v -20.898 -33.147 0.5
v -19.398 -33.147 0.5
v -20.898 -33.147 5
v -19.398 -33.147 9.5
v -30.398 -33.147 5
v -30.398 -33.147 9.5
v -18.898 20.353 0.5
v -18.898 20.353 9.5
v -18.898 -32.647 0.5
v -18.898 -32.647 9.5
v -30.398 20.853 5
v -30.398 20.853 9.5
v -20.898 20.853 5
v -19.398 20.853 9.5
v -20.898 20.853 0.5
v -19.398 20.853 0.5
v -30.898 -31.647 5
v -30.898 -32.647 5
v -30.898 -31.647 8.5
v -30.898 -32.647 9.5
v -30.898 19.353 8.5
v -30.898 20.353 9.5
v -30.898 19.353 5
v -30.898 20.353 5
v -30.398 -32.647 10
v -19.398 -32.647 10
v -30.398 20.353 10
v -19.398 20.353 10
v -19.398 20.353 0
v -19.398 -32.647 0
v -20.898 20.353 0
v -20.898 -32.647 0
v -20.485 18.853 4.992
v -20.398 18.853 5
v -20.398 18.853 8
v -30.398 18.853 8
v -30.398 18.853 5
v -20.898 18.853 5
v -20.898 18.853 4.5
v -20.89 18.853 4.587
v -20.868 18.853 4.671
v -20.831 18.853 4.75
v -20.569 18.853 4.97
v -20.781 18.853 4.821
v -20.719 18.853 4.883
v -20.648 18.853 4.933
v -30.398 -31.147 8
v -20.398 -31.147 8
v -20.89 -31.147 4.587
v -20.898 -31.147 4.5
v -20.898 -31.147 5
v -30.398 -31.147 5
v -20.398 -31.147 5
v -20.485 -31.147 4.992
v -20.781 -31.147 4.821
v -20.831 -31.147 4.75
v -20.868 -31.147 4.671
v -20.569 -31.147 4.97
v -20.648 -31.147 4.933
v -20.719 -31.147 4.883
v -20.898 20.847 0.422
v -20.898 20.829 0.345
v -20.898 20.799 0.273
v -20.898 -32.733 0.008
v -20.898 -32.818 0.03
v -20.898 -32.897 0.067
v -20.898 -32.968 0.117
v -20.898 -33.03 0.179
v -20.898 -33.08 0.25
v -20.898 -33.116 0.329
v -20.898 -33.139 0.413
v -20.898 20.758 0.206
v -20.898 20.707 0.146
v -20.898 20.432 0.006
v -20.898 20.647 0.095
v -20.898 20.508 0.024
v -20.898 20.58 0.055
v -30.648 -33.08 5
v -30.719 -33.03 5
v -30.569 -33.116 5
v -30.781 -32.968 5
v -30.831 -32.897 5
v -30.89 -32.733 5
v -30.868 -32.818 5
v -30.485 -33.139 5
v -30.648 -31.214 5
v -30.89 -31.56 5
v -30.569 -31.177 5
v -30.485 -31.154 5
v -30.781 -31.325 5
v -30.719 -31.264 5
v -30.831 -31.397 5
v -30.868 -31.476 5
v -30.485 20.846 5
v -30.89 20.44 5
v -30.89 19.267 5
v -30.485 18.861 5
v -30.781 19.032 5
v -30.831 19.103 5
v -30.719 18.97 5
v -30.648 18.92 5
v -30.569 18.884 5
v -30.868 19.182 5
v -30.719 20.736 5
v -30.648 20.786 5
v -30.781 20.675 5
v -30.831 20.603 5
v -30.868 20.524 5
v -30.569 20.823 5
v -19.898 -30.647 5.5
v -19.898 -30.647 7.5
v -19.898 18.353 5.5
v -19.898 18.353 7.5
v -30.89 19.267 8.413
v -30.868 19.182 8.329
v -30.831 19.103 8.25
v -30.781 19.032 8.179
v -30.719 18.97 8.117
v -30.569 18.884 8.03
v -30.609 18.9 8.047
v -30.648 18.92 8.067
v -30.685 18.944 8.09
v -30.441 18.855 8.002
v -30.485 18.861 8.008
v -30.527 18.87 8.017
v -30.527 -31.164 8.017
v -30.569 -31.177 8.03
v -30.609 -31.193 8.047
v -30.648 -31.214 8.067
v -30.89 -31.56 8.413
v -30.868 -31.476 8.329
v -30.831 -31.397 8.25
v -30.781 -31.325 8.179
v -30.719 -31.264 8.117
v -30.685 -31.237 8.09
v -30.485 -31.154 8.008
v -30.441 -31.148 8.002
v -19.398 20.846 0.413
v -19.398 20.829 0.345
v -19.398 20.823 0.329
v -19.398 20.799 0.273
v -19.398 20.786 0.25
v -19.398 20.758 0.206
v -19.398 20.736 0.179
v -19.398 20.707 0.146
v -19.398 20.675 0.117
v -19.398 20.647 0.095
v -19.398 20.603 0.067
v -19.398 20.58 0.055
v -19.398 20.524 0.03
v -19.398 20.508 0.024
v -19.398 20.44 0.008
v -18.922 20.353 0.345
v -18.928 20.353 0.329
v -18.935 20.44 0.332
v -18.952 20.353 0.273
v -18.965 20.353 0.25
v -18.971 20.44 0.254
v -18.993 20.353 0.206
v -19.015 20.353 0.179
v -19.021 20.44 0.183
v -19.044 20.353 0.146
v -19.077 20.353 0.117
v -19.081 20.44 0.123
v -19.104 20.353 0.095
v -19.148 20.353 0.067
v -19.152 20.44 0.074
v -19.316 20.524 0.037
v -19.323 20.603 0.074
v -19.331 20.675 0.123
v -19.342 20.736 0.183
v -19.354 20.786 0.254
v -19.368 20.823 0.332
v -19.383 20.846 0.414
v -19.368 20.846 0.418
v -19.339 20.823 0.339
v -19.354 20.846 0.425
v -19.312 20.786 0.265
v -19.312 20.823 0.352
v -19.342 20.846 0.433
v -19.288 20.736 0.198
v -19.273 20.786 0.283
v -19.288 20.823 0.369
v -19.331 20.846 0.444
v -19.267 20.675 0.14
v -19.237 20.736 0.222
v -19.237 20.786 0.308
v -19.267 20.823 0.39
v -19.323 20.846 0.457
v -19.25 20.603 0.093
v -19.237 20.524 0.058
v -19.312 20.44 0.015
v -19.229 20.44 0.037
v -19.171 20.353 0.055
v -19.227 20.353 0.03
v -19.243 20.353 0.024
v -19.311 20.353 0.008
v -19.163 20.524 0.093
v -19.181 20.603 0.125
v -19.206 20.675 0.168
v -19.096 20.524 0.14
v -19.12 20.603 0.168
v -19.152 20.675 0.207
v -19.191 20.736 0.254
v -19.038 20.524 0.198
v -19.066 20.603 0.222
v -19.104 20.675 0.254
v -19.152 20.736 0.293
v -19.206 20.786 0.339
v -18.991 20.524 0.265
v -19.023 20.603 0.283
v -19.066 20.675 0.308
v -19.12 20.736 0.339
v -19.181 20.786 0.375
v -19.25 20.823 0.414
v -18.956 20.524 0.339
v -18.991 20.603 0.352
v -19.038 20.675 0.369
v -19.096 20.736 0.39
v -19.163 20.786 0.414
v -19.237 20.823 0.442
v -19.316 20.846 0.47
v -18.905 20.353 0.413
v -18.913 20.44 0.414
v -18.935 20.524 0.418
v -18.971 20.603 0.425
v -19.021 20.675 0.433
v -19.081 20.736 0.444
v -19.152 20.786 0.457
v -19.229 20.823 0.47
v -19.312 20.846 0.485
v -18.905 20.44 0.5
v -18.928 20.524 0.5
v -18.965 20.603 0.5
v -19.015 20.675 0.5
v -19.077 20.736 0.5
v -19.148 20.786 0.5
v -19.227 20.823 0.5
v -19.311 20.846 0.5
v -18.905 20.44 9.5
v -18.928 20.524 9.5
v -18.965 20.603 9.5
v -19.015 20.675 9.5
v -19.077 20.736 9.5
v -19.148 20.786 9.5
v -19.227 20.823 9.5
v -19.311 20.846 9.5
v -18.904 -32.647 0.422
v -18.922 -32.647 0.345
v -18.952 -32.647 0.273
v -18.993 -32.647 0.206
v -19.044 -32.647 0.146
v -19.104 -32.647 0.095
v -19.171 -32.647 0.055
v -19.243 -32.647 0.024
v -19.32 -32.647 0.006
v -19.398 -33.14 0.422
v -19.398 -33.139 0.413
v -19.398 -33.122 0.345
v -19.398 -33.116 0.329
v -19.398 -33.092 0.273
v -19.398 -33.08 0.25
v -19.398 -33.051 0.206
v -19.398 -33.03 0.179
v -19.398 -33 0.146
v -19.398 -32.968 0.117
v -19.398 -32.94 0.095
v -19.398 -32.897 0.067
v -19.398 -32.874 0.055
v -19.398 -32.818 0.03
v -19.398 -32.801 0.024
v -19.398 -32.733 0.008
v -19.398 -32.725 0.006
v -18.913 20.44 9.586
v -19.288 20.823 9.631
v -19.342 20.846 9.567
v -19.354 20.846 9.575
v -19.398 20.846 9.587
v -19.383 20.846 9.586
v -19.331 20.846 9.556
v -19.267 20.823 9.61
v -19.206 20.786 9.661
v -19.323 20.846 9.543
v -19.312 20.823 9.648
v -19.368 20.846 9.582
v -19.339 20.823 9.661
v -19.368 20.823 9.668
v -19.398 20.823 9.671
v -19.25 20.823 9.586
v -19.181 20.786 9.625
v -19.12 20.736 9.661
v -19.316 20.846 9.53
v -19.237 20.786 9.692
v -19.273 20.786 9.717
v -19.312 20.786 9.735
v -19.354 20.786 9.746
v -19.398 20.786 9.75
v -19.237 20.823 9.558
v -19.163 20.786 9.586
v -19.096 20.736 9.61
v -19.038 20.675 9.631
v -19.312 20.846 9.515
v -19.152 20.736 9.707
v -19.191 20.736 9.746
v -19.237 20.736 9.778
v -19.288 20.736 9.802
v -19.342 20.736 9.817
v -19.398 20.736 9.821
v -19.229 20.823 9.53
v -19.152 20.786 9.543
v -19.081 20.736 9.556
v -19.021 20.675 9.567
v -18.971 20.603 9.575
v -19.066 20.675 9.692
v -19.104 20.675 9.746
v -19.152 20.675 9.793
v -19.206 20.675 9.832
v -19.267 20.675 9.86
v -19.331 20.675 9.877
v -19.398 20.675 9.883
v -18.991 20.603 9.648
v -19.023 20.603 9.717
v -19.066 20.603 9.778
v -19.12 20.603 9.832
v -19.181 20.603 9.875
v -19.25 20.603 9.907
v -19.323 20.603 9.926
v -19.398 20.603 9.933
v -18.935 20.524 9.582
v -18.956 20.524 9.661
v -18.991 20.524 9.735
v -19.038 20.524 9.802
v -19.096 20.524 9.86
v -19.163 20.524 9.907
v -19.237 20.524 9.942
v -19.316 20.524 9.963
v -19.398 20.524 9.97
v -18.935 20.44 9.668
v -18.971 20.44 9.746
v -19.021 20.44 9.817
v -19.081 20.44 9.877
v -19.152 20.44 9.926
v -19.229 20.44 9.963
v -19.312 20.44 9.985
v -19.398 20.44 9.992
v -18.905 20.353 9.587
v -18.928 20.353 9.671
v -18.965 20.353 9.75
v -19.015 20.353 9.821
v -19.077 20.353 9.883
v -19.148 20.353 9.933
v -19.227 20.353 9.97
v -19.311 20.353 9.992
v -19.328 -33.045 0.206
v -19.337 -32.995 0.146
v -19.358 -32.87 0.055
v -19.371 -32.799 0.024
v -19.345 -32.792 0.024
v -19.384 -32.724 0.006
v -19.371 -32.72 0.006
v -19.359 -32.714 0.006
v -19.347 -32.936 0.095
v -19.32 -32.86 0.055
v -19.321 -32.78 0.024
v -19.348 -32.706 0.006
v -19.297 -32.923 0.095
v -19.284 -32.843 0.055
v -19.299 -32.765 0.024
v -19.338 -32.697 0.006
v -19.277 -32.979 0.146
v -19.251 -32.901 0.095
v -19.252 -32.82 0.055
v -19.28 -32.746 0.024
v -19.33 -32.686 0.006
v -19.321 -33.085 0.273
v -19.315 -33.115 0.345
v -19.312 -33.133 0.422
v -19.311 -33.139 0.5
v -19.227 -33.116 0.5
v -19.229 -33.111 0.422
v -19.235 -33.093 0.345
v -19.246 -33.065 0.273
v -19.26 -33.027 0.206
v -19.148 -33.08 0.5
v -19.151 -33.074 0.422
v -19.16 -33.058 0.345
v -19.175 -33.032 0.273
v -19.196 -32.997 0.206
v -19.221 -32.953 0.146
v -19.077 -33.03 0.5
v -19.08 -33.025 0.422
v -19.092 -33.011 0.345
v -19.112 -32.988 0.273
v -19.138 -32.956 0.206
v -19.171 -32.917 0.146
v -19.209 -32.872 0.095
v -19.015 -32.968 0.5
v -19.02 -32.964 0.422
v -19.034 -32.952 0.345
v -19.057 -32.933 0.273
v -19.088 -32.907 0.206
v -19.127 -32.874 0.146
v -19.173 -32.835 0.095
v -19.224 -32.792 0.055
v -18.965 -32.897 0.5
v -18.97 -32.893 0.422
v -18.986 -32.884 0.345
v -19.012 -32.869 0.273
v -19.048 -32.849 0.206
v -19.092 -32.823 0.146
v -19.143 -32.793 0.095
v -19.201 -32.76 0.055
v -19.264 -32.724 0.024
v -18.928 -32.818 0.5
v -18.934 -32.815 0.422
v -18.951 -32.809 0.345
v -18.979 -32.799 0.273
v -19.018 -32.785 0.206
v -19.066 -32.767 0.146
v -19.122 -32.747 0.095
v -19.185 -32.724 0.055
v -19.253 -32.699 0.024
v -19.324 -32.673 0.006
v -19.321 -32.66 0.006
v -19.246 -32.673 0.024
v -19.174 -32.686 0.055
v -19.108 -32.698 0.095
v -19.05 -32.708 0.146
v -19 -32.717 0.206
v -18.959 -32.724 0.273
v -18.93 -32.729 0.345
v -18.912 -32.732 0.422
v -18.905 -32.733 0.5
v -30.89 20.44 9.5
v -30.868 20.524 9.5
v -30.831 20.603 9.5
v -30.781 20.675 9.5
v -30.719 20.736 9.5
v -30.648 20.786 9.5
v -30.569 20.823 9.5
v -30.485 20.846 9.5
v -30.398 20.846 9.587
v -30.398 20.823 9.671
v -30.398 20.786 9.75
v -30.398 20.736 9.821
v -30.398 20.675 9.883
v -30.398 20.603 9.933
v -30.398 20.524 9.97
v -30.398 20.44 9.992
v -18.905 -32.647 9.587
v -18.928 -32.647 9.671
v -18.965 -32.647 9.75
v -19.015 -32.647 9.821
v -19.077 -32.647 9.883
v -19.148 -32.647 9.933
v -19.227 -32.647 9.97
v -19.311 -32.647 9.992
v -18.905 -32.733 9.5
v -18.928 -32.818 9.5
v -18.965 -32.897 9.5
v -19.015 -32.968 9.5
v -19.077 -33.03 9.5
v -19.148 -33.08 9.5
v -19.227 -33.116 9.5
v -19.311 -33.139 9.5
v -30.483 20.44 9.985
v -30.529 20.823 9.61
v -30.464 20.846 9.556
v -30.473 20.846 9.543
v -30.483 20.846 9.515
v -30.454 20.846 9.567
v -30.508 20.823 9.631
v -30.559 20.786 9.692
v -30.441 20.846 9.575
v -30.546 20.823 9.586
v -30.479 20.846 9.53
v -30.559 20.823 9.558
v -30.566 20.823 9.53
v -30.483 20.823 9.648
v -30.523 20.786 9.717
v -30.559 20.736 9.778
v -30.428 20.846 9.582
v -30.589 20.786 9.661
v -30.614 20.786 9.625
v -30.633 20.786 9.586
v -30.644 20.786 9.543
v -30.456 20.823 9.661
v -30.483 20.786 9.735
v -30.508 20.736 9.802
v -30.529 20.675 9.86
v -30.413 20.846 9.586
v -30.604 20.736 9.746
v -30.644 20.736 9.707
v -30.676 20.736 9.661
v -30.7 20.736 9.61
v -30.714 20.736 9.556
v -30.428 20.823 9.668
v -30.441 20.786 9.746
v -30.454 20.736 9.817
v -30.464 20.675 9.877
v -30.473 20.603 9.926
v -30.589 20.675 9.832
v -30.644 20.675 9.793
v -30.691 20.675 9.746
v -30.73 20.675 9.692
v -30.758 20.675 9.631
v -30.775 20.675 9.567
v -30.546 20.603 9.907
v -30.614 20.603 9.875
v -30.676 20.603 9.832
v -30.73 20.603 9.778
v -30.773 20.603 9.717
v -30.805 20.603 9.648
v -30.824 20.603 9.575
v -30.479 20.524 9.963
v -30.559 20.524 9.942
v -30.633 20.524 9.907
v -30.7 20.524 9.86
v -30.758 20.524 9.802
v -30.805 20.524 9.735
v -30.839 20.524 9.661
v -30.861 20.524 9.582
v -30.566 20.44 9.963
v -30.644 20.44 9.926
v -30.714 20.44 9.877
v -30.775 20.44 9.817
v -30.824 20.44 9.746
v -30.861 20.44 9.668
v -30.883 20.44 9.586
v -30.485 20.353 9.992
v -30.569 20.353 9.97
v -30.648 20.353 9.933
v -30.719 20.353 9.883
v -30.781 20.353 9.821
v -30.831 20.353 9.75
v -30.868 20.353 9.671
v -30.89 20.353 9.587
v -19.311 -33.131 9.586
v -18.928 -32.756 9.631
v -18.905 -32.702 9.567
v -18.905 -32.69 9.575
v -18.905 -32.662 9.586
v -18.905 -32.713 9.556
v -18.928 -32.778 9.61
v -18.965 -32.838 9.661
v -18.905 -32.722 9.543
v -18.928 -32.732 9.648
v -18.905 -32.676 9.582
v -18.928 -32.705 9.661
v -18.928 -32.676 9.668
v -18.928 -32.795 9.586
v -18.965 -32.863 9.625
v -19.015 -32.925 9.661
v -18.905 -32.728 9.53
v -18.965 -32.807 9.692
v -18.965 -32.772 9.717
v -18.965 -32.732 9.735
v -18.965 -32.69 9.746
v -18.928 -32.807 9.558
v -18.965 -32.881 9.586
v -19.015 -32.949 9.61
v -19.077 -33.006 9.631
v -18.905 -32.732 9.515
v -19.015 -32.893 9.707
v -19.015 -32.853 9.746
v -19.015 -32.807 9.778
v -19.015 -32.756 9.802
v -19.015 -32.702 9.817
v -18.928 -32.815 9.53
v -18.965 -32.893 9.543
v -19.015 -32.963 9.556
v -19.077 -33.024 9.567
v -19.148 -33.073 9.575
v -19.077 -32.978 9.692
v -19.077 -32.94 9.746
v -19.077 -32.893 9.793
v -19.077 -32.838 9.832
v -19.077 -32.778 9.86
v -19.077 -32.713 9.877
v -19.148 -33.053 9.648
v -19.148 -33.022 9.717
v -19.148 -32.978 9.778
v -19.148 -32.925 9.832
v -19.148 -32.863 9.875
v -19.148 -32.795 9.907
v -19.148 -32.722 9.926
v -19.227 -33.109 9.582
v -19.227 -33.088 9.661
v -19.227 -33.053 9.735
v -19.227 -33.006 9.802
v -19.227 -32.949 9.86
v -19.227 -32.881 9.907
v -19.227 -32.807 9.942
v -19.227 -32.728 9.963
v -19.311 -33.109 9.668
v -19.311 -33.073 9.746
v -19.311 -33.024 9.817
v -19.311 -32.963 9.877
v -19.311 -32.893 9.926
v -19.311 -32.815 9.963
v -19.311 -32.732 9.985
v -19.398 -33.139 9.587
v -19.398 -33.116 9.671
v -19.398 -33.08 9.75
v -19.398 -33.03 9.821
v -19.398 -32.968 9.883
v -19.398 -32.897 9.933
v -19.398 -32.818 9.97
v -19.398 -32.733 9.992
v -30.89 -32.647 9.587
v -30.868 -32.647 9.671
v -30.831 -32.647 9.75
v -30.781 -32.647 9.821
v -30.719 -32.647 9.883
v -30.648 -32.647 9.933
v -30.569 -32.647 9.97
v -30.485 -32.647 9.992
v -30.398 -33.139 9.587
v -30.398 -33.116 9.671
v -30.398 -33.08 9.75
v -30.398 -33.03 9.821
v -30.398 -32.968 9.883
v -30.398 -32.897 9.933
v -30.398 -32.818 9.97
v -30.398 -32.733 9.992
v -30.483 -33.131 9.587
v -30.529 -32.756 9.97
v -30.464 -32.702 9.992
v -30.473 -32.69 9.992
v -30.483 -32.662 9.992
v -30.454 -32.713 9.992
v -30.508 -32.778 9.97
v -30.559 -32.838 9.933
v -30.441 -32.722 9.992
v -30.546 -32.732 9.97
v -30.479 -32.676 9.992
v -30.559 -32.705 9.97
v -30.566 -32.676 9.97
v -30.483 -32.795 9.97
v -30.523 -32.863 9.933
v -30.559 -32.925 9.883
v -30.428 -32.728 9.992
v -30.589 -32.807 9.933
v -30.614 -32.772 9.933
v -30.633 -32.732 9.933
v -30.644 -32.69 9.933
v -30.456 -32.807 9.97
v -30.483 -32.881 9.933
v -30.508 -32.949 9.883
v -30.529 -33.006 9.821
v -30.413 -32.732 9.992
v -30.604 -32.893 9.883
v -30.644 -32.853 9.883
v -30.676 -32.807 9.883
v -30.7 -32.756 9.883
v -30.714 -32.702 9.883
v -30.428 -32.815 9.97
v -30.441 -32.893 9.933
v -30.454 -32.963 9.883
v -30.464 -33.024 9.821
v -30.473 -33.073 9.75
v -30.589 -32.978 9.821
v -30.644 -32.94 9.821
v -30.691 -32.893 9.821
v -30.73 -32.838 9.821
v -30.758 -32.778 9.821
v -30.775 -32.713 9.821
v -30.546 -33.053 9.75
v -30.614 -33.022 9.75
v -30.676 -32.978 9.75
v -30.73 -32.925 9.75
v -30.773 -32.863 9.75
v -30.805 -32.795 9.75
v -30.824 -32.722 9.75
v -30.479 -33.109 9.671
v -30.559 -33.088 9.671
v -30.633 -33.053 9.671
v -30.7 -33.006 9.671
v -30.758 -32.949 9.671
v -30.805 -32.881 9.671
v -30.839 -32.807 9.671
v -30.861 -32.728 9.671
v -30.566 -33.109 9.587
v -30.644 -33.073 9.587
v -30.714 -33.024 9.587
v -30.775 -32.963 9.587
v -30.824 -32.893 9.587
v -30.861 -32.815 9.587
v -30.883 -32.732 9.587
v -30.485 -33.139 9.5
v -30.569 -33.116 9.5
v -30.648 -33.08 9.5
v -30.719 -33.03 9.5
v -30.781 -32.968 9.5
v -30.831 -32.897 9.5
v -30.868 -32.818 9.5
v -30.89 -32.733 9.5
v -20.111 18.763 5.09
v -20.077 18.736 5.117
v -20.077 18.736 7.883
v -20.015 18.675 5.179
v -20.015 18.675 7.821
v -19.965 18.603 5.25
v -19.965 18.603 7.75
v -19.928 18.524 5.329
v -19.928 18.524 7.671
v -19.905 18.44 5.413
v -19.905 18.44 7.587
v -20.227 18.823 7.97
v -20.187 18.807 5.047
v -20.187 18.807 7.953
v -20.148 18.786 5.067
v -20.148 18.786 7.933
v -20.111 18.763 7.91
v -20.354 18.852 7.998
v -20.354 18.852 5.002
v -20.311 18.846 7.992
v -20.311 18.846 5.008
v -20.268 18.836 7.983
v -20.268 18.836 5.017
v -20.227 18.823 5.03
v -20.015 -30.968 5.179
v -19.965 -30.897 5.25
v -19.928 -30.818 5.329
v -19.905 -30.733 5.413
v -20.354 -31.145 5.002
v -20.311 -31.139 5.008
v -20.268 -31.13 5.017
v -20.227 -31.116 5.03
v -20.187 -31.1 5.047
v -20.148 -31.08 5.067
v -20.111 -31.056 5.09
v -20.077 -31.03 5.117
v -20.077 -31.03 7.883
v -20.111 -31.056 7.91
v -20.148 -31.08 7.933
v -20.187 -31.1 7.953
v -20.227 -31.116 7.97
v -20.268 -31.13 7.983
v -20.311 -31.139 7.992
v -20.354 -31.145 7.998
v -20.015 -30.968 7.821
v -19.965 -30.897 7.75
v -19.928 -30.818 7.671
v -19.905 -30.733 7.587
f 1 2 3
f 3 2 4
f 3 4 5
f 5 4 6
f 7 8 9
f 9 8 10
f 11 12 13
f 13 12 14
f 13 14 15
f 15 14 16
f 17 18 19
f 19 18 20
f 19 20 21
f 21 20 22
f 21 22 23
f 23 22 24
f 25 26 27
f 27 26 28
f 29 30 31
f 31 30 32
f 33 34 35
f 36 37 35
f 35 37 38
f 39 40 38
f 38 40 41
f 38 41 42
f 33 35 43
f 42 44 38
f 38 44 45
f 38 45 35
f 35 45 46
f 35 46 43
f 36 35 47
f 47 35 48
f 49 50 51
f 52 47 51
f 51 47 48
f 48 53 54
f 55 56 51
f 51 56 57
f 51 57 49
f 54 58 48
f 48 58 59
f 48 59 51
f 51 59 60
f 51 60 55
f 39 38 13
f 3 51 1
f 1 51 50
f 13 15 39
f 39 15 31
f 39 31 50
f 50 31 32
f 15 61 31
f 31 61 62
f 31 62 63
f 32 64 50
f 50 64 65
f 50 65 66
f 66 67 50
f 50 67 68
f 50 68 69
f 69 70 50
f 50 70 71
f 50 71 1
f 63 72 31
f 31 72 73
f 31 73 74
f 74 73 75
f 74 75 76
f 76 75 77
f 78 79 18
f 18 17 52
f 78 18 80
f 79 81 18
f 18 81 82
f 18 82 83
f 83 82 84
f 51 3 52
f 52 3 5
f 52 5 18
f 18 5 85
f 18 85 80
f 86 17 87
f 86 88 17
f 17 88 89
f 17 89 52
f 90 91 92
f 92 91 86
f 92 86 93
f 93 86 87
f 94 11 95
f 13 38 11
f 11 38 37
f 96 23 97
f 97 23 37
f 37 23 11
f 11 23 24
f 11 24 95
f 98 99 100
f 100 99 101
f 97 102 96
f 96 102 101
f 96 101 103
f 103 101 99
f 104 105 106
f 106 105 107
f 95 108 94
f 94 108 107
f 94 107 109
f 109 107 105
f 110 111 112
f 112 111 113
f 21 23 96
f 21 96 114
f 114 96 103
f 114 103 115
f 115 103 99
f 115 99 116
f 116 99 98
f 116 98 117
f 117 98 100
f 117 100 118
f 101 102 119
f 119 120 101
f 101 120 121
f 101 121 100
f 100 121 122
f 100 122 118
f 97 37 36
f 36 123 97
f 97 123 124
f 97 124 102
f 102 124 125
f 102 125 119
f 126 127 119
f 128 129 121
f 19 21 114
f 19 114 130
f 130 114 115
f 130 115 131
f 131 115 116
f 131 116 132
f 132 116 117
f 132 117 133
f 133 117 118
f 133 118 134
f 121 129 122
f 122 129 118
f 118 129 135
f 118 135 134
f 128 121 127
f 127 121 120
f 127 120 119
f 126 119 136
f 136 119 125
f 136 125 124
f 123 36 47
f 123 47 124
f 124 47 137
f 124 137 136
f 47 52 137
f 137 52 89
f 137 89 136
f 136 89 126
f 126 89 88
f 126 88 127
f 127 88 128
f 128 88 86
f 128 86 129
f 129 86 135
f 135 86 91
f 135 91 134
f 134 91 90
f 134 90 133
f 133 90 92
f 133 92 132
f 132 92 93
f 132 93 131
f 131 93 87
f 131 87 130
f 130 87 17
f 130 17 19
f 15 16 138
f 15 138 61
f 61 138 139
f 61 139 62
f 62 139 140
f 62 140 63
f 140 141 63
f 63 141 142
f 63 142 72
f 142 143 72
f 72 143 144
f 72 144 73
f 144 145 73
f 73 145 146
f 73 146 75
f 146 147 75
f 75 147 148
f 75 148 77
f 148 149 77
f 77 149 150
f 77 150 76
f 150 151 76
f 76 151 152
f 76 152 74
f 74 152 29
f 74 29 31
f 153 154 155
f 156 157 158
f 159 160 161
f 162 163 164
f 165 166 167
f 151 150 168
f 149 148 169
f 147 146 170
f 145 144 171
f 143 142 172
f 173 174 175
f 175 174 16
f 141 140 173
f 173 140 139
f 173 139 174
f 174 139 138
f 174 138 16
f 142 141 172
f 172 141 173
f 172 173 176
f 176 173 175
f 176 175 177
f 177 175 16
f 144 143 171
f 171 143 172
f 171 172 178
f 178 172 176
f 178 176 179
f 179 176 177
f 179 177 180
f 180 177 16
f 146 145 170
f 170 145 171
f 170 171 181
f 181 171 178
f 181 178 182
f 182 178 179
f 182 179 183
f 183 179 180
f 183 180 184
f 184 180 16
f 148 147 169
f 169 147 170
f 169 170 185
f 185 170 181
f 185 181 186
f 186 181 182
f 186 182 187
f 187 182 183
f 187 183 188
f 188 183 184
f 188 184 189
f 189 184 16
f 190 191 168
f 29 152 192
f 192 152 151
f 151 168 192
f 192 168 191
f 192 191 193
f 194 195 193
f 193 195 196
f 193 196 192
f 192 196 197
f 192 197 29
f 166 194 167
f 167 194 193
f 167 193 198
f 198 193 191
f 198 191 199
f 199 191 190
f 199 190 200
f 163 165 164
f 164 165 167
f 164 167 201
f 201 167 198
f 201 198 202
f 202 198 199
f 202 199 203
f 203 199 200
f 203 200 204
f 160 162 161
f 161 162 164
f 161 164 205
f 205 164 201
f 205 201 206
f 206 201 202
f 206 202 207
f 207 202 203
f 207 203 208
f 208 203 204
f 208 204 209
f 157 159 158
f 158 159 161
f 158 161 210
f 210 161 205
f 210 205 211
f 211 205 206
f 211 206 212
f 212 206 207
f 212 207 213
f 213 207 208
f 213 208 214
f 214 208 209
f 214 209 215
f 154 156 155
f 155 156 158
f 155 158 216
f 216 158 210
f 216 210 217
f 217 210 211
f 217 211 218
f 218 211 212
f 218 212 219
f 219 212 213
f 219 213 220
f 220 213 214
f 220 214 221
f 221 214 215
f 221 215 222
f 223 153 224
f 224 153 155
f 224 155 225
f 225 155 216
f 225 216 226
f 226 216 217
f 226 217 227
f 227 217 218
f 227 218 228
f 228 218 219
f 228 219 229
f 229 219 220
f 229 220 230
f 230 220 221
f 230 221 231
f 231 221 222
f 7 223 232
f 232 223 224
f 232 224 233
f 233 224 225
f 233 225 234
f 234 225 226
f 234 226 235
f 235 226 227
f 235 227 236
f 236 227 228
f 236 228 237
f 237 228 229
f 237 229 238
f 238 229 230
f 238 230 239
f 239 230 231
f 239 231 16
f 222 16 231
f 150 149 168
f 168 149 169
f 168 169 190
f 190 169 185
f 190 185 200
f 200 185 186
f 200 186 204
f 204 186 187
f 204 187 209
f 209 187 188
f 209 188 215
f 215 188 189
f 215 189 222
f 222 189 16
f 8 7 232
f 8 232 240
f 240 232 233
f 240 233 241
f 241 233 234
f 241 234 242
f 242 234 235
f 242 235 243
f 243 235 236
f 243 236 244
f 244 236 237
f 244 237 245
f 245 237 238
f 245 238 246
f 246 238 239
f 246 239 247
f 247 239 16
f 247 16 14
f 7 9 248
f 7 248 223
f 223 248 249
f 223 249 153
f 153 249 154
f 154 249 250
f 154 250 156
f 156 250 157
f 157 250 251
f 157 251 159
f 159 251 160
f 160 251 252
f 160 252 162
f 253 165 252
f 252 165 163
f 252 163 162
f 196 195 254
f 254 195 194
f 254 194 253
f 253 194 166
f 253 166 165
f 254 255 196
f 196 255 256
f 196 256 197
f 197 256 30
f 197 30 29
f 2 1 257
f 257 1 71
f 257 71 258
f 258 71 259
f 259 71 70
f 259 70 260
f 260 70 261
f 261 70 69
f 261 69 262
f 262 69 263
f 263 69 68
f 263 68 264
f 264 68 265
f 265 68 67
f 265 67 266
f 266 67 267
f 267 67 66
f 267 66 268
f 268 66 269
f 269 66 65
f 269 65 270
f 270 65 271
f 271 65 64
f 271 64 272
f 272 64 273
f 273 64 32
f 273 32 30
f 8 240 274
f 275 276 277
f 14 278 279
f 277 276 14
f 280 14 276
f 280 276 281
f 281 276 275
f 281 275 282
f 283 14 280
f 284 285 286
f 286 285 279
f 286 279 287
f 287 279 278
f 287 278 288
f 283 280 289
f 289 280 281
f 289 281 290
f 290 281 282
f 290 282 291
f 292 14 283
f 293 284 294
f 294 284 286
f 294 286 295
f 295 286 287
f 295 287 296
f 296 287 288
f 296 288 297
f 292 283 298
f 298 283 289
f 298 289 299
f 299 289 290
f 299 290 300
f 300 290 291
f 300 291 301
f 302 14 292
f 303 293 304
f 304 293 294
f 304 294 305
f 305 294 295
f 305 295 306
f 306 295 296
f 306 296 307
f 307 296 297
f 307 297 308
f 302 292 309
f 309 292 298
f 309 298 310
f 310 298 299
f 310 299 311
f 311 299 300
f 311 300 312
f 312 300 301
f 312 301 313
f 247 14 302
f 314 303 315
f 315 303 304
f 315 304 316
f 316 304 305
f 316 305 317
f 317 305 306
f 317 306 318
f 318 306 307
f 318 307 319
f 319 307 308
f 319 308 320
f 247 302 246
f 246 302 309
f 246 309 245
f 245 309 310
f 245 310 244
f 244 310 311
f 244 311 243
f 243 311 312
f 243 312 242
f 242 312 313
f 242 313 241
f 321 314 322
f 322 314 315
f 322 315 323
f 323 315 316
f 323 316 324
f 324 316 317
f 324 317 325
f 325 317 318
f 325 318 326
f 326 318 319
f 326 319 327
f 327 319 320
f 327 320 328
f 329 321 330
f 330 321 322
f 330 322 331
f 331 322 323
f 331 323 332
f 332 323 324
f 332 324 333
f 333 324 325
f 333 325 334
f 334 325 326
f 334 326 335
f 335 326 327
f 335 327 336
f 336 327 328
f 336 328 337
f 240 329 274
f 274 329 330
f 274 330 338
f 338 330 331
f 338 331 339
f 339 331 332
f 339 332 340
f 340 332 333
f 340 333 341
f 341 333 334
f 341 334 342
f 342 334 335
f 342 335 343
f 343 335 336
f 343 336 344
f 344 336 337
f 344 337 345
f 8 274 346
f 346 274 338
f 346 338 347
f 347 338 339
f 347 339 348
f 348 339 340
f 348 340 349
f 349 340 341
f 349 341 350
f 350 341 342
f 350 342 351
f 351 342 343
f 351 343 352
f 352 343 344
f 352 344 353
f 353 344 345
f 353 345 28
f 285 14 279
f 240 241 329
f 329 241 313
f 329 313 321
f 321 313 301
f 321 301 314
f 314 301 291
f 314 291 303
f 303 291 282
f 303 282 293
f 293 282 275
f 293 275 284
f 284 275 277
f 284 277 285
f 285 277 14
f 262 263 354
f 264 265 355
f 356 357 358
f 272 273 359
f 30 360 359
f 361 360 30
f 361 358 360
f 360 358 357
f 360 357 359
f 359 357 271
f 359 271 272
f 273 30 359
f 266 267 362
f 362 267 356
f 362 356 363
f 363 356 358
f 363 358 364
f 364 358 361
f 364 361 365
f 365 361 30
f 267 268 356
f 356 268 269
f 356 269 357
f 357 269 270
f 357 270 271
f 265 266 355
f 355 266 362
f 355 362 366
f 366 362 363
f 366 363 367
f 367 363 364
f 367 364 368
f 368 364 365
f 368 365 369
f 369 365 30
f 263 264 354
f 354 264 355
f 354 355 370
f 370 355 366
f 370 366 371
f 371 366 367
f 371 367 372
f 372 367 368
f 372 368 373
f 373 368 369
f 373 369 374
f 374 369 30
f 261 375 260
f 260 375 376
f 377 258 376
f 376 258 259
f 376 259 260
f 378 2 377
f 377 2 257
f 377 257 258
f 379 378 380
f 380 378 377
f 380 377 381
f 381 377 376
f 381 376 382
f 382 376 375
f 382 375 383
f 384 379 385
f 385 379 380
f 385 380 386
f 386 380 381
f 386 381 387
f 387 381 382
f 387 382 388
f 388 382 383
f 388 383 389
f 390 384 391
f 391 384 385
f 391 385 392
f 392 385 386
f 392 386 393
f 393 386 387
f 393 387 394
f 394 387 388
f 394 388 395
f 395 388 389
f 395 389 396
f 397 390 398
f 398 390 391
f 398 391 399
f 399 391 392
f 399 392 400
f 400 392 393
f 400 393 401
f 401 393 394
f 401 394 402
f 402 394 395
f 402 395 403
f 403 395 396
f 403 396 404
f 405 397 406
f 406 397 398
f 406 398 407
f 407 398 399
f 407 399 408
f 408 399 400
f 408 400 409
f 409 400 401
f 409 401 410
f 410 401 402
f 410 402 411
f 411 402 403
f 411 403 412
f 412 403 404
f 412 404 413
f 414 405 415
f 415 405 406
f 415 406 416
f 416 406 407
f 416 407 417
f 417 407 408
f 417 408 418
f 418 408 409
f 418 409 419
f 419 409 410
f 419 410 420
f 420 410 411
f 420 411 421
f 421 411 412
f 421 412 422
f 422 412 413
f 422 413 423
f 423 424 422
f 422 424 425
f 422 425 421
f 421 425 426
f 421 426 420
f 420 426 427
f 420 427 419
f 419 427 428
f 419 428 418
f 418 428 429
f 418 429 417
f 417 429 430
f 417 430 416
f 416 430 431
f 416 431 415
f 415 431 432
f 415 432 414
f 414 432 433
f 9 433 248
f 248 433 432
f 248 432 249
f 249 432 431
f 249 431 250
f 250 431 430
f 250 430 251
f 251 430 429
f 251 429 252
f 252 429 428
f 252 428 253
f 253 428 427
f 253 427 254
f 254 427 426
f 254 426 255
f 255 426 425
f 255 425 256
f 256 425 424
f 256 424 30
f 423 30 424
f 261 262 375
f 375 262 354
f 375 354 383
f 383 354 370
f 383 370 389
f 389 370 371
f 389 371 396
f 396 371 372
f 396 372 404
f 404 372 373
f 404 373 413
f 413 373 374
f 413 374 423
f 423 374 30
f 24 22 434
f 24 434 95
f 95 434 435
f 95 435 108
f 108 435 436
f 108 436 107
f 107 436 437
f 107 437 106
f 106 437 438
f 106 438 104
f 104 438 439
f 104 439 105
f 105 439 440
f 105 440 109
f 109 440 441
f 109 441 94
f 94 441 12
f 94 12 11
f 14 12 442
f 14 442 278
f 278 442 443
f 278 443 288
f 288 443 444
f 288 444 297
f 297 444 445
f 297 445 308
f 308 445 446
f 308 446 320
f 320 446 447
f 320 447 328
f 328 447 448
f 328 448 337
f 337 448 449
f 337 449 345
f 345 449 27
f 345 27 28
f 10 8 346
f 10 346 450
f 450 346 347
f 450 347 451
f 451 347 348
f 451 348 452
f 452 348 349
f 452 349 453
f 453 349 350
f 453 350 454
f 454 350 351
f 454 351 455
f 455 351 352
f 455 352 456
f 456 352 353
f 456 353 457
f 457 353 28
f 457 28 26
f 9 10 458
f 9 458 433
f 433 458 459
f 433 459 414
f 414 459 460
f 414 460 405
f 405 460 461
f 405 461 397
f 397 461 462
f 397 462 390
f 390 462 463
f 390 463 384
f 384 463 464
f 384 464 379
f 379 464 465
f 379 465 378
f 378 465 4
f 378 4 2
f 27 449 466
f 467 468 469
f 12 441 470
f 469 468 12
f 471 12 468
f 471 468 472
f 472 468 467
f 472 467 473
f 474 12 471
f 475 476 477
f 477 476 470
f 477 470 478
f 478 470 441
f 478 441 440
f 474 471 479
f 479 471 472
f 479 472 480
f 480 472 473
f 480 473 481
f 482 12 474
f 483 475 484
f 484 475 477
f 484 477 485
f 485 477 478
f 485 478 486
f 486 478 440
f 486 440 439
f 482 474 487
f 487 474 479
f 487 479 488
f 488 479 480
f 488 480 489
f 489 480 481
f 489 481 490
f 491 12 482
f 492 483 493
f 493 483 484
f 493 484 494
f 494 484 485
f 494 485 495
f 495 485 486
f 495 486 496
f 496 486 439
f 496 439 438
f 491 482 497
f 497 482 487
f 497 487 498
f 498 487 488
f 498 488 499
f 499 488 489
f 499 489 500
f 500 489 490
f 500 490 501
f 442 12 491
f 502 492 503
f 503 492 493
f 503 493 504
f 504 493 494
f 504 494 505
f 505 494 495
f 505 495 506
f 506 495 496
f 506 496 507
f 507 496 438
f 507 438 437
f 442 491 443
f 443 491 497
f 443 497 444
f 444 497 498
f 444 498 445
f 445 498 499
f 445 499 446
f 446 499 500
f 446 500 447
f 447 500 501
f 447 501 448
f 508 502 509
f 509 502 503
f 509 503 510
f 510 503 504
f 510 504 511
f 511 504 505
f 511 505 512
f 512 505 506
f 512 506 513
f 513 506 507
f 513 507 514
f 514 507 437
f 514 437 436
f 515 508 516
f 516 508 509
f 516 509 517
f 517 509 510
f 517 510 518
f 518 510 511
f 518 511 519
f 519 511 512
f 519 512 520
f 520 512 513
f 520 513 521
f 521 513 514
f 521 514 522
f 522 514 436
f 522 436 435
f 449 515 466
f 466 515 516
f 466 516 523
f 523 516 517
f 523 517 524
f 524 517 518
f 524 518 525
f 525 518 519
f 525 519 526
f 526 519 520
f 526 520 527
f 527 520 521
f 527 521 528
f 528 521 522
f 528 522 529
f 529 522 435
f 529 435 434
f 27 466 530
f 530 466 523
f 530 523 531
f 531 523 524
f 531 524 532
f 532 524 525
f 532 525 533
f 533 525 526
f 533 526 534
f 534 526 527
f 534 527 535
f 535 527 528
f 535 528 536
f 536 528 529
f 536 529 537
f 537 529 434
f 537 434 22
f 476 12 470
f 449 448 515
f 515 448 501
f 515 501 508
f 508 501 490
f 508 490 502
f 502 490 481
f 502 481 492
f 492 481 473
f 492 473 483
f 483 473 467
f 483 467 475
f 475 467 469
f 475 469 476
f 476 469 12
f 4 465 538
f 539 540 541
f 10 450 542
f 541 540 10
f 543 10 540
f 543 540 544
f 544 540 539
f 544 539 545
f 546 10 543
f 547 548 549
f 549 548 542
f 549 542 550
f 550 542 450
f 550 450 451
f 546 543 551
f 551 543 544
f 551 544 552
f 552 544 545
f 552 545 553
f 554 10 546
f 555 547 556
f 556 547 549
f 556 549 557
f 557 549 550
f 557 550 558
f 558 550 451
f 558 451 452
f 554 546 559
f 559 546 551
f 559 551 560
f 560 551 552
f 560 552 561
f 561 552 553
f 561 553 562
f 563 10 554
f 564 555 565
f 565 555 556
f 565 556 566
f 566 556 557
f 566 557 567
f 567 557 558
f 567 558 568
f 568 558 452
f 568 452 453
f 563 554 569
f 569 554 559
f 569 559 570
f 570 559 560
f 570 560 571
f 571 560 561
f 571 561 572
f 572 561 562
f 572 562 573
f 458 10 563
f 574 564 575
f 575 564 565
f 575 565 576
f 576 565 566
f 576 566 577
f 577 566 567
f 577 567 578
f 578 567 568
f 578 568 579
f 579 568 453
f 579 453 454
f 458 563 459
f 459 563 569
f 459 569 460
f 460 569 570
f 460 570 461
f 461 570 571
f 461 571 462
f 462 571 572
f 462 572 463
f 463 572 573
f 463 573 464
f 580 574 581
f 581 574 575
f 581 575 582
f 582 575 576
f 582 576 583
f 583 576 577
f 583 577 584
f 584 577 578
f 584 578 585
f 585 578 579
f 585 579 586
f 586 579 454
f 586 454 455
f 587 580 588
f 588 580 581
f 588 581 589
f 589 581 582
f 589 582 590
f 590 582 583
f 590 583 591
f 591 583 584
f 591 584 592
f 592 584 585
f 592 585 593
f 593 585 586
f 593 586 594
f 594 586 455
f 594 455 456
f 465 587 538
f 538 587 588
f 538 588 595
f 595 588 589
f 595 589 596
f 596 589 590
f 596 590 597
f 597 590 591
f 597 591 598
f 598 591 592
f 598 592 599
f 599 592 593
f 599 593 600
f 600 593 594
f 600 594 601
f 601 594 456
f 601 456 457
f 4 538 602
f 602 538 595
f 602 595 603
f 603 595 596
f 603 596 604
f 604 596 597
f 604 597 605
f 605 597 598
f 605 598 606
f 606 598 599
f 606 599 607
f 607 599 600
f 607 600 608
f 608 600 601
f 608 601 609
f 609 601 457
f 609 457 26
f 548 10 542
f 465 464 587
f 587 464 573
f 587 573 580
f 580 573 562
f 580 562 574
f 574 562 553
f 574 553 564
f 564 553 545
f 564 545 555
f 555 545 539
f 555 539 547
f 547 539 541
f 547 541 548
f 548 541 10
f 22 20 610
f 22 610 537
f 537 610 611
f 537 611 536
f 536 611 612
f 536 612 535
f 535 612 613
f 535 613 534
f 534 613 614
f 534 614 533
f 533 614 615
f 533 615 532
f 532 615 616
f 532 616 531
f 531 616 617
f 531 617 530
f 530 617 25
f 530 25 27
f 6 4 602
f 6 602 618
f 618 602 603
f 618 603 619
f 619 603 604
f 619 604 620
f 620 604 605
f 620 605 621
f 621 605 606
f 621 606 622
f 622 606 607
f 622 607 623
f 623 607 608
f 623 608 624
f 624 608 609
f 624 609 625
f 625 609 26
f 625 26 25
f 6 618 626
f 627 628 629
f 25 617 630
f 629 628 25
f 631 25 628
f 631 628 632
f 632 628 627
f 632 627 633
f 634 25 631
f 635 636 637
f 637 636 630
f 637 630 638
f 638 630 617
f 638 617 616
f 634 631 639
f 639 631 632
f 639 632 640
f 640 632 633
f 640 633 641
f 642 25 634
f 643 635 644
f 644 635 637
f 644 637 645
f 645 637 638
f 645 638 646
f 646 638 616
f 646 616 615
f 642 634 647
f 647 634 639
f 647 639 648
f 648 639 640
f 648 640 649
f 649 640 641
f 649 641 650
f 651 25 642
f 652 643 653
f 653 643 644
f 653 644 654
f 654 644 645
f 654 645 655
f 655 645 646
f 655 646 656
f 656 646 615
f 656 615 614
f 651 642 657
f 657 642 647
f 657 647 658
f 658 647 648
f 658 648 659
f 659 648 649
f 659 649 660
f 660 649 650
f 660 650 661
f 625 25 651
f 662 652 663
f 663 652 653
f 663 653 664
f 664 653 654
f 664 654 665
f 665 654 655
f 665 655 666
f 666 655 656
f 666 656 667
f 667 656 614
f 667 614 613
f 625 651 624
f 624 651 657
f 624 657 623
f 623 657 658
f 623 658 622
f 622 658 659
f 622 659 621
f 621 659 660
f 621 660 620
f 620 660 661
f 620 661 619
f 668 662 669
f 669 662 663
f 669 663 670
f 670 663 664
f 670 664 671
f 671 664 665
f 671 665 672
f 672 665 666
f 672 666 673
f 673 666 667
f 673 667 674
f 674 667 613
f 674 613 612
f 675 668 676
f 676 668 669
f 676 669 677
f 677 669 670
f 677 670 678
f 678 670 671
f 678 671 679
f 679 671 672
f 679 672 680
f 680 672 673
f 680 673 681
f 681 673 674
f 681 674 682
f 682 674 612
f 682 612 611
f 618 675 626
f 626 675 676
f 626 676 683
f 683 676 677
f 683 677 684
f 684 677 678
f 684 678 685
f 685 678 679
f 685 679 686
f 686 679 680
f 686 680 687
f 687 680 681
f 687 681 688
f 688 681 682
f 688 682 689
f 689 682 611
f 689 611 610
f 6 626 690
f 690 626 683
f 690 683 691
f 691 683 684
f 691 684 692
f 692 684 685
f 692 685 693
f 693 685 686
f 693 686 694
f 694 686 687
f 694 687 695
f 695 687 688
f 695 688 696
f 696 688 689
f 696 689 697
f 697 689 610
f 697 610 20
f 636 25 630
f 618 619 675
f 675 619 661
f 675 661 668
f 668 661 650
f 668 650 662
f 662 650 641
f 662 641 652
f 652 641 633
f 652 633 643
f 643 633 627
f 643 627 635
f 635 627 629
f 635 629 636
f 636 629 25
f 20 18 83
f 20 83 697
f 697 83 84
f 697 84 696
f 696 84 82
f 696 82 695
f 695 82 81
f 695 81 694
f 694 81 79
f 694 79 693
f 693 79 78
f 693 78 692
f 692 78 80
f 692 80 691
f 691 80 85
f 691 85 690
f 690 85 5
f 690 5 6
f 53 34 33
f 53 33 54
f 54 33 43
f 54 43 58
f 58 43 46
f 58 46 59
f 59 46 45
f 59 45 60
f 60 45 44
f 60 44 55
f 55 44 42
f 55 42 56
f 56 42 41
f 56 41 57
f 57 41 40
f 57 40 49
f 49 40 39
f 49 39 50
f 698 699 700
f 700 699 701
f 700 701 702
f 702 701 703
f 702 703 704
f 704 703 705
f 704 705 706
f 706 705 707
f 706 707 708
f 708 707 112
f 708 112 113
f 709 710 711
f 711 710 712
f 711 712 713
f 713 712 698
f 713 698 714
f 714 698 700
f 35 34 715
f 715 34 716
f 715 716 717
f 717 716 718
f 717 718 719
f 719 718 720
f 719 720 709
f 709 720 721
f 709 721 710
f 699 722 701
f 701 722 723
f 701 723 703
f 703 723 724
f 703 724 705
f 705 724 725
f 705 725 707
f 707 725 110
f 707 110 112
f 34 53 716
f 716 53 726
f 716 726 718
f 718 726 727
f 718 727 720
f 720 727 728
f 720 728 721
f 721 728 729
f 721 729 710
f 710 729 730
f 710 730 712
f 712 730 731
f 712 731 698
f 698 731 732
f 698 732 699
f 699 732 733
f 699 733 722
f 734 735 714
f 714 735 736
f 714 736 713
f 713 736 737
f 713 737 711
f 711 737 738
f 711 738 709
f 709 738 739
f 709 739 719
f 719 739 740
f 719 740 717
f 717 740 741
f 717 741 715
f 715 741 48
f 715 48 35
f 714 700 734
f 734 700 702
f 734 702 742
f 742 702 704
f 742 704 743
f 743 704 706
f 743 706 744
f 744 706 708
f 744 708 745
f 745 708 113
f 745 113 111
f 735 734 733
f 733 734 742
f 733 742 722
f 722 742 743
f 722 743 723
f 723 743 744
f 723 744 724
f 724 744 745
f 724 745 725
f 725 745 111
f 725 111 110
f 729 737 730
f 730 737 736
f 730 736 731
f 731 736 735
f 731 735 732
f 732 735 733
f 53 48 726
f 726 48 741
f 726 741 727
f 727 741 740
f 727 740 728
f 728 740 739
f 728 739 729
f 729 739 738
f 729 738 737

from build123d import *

# Parameters (mm, degrees)
SKETCH_1_W          = 12
SKETCH_1_H          = 54
EXTRUDE_1_DEPTH     = 10
SKETCH_2_W          = 8
SKETCH_2_H          = 50
CUT_EXTRUDE_1_DEPTH = 10
SKETCH_3_W          = 13.565938191
SKETCH_3_H          = 57.788760324
CUT_EXTRUDE_2_DEPTH = 10
SKETCH_4_W          = 3
SKETCH_4_H          = 50
CUT_EXTRUDE_3_DEPTH = 1
FILLET_1_R          = 0.5


with BuildPart() as part:
    # 草圖1 → 填料-伸長1 (new body)
    with BuildSketch(Plane.XY):
        with Locations((-24.897904343, -6.146542517)):
            Rectangle(SKETCH_1_W, SKETCH_1_H)
    extrude(amount=EXTRUDE_1_DEPTH)

    # 草圖2 → 除料-伸長1 (cut)
    with BuildSketch(Plane.ZY.offset(30.897904343)):
        with Locations((4, -6.146542517)):
            Rectangle(SKETCH_2_W, SKETCH_2_H)
    extrude(amount=-CUT_EXTRUDE_1_DEPTH, mode=Mode.SUBTRACT)

    # 草圖3 → 除料-伸長2 (cut)
    with BuildSketch(Plane.ZY.offset(30.897904343)):
        with Locations((-1.782969096, -5.724817648)):
            Rectangle(SKETCH_3_W, SKETCH_3_H)
    extrude(amount=-CUT_EXTRUDE_2_DEPTH, mode=Mode.SUBTRACT)

    # 草圖4 → 除料-伸長3 (cut)
    with BuildSketch(Plane.ZY.offset(20.897904343)):
        with Locations((6.5, -6.146542517)):
            Rectangle(SKETCH_4_W, SKETCH_4_H)
    extrude(amount=-CUT_EXTRUDE_3_DEPTH, mode=Mode.SUBTRACT)

    # 圓角1
    fillet_1_edges = [part.edges().sort_by_distance(p)[0] for p in [
        (-24.897904343, 20.853457483, 10),
        (-30.897904343, -6.146542517, 10),
        (-30.897904343, -6.146542517, 8),
        (-30.897904343, 18.853457483, 6.5),
        (-30.897904343, -31.146542517, 6.5),
        (-19.897904343, 20.853457483, 0),
        (-19.897904343, -33.146542517, 0),
        (-24.897904343, -33.146542517, 10),
        (-18.897904343, -6.146542517, 0),
        (-19.897904343, -6.146542517, 8),
        (-19.897904343, -31.146542517, 6.5),
        (-19.897904343, -6.146542517, 5),
        (-19.897904343, 18.853457483, 6.5),
        (-20.897904343, -6.146542517, 5),
        (-30.897904343, -33.146542517, 7.5),
        (-30.897904343, 20.853457483, 7.5),
        (-18.897904343, 20.853457483, 5),
        (-18.897904343, -33.146542517, 5),
        (-18.897904343, -6.146542517, 10),
    ]]
    fillet(fillet_1_edges, radius=FILLET_1_R - 0.0001)  # a hair under: the kernel refuses the full size


solid = part.part
